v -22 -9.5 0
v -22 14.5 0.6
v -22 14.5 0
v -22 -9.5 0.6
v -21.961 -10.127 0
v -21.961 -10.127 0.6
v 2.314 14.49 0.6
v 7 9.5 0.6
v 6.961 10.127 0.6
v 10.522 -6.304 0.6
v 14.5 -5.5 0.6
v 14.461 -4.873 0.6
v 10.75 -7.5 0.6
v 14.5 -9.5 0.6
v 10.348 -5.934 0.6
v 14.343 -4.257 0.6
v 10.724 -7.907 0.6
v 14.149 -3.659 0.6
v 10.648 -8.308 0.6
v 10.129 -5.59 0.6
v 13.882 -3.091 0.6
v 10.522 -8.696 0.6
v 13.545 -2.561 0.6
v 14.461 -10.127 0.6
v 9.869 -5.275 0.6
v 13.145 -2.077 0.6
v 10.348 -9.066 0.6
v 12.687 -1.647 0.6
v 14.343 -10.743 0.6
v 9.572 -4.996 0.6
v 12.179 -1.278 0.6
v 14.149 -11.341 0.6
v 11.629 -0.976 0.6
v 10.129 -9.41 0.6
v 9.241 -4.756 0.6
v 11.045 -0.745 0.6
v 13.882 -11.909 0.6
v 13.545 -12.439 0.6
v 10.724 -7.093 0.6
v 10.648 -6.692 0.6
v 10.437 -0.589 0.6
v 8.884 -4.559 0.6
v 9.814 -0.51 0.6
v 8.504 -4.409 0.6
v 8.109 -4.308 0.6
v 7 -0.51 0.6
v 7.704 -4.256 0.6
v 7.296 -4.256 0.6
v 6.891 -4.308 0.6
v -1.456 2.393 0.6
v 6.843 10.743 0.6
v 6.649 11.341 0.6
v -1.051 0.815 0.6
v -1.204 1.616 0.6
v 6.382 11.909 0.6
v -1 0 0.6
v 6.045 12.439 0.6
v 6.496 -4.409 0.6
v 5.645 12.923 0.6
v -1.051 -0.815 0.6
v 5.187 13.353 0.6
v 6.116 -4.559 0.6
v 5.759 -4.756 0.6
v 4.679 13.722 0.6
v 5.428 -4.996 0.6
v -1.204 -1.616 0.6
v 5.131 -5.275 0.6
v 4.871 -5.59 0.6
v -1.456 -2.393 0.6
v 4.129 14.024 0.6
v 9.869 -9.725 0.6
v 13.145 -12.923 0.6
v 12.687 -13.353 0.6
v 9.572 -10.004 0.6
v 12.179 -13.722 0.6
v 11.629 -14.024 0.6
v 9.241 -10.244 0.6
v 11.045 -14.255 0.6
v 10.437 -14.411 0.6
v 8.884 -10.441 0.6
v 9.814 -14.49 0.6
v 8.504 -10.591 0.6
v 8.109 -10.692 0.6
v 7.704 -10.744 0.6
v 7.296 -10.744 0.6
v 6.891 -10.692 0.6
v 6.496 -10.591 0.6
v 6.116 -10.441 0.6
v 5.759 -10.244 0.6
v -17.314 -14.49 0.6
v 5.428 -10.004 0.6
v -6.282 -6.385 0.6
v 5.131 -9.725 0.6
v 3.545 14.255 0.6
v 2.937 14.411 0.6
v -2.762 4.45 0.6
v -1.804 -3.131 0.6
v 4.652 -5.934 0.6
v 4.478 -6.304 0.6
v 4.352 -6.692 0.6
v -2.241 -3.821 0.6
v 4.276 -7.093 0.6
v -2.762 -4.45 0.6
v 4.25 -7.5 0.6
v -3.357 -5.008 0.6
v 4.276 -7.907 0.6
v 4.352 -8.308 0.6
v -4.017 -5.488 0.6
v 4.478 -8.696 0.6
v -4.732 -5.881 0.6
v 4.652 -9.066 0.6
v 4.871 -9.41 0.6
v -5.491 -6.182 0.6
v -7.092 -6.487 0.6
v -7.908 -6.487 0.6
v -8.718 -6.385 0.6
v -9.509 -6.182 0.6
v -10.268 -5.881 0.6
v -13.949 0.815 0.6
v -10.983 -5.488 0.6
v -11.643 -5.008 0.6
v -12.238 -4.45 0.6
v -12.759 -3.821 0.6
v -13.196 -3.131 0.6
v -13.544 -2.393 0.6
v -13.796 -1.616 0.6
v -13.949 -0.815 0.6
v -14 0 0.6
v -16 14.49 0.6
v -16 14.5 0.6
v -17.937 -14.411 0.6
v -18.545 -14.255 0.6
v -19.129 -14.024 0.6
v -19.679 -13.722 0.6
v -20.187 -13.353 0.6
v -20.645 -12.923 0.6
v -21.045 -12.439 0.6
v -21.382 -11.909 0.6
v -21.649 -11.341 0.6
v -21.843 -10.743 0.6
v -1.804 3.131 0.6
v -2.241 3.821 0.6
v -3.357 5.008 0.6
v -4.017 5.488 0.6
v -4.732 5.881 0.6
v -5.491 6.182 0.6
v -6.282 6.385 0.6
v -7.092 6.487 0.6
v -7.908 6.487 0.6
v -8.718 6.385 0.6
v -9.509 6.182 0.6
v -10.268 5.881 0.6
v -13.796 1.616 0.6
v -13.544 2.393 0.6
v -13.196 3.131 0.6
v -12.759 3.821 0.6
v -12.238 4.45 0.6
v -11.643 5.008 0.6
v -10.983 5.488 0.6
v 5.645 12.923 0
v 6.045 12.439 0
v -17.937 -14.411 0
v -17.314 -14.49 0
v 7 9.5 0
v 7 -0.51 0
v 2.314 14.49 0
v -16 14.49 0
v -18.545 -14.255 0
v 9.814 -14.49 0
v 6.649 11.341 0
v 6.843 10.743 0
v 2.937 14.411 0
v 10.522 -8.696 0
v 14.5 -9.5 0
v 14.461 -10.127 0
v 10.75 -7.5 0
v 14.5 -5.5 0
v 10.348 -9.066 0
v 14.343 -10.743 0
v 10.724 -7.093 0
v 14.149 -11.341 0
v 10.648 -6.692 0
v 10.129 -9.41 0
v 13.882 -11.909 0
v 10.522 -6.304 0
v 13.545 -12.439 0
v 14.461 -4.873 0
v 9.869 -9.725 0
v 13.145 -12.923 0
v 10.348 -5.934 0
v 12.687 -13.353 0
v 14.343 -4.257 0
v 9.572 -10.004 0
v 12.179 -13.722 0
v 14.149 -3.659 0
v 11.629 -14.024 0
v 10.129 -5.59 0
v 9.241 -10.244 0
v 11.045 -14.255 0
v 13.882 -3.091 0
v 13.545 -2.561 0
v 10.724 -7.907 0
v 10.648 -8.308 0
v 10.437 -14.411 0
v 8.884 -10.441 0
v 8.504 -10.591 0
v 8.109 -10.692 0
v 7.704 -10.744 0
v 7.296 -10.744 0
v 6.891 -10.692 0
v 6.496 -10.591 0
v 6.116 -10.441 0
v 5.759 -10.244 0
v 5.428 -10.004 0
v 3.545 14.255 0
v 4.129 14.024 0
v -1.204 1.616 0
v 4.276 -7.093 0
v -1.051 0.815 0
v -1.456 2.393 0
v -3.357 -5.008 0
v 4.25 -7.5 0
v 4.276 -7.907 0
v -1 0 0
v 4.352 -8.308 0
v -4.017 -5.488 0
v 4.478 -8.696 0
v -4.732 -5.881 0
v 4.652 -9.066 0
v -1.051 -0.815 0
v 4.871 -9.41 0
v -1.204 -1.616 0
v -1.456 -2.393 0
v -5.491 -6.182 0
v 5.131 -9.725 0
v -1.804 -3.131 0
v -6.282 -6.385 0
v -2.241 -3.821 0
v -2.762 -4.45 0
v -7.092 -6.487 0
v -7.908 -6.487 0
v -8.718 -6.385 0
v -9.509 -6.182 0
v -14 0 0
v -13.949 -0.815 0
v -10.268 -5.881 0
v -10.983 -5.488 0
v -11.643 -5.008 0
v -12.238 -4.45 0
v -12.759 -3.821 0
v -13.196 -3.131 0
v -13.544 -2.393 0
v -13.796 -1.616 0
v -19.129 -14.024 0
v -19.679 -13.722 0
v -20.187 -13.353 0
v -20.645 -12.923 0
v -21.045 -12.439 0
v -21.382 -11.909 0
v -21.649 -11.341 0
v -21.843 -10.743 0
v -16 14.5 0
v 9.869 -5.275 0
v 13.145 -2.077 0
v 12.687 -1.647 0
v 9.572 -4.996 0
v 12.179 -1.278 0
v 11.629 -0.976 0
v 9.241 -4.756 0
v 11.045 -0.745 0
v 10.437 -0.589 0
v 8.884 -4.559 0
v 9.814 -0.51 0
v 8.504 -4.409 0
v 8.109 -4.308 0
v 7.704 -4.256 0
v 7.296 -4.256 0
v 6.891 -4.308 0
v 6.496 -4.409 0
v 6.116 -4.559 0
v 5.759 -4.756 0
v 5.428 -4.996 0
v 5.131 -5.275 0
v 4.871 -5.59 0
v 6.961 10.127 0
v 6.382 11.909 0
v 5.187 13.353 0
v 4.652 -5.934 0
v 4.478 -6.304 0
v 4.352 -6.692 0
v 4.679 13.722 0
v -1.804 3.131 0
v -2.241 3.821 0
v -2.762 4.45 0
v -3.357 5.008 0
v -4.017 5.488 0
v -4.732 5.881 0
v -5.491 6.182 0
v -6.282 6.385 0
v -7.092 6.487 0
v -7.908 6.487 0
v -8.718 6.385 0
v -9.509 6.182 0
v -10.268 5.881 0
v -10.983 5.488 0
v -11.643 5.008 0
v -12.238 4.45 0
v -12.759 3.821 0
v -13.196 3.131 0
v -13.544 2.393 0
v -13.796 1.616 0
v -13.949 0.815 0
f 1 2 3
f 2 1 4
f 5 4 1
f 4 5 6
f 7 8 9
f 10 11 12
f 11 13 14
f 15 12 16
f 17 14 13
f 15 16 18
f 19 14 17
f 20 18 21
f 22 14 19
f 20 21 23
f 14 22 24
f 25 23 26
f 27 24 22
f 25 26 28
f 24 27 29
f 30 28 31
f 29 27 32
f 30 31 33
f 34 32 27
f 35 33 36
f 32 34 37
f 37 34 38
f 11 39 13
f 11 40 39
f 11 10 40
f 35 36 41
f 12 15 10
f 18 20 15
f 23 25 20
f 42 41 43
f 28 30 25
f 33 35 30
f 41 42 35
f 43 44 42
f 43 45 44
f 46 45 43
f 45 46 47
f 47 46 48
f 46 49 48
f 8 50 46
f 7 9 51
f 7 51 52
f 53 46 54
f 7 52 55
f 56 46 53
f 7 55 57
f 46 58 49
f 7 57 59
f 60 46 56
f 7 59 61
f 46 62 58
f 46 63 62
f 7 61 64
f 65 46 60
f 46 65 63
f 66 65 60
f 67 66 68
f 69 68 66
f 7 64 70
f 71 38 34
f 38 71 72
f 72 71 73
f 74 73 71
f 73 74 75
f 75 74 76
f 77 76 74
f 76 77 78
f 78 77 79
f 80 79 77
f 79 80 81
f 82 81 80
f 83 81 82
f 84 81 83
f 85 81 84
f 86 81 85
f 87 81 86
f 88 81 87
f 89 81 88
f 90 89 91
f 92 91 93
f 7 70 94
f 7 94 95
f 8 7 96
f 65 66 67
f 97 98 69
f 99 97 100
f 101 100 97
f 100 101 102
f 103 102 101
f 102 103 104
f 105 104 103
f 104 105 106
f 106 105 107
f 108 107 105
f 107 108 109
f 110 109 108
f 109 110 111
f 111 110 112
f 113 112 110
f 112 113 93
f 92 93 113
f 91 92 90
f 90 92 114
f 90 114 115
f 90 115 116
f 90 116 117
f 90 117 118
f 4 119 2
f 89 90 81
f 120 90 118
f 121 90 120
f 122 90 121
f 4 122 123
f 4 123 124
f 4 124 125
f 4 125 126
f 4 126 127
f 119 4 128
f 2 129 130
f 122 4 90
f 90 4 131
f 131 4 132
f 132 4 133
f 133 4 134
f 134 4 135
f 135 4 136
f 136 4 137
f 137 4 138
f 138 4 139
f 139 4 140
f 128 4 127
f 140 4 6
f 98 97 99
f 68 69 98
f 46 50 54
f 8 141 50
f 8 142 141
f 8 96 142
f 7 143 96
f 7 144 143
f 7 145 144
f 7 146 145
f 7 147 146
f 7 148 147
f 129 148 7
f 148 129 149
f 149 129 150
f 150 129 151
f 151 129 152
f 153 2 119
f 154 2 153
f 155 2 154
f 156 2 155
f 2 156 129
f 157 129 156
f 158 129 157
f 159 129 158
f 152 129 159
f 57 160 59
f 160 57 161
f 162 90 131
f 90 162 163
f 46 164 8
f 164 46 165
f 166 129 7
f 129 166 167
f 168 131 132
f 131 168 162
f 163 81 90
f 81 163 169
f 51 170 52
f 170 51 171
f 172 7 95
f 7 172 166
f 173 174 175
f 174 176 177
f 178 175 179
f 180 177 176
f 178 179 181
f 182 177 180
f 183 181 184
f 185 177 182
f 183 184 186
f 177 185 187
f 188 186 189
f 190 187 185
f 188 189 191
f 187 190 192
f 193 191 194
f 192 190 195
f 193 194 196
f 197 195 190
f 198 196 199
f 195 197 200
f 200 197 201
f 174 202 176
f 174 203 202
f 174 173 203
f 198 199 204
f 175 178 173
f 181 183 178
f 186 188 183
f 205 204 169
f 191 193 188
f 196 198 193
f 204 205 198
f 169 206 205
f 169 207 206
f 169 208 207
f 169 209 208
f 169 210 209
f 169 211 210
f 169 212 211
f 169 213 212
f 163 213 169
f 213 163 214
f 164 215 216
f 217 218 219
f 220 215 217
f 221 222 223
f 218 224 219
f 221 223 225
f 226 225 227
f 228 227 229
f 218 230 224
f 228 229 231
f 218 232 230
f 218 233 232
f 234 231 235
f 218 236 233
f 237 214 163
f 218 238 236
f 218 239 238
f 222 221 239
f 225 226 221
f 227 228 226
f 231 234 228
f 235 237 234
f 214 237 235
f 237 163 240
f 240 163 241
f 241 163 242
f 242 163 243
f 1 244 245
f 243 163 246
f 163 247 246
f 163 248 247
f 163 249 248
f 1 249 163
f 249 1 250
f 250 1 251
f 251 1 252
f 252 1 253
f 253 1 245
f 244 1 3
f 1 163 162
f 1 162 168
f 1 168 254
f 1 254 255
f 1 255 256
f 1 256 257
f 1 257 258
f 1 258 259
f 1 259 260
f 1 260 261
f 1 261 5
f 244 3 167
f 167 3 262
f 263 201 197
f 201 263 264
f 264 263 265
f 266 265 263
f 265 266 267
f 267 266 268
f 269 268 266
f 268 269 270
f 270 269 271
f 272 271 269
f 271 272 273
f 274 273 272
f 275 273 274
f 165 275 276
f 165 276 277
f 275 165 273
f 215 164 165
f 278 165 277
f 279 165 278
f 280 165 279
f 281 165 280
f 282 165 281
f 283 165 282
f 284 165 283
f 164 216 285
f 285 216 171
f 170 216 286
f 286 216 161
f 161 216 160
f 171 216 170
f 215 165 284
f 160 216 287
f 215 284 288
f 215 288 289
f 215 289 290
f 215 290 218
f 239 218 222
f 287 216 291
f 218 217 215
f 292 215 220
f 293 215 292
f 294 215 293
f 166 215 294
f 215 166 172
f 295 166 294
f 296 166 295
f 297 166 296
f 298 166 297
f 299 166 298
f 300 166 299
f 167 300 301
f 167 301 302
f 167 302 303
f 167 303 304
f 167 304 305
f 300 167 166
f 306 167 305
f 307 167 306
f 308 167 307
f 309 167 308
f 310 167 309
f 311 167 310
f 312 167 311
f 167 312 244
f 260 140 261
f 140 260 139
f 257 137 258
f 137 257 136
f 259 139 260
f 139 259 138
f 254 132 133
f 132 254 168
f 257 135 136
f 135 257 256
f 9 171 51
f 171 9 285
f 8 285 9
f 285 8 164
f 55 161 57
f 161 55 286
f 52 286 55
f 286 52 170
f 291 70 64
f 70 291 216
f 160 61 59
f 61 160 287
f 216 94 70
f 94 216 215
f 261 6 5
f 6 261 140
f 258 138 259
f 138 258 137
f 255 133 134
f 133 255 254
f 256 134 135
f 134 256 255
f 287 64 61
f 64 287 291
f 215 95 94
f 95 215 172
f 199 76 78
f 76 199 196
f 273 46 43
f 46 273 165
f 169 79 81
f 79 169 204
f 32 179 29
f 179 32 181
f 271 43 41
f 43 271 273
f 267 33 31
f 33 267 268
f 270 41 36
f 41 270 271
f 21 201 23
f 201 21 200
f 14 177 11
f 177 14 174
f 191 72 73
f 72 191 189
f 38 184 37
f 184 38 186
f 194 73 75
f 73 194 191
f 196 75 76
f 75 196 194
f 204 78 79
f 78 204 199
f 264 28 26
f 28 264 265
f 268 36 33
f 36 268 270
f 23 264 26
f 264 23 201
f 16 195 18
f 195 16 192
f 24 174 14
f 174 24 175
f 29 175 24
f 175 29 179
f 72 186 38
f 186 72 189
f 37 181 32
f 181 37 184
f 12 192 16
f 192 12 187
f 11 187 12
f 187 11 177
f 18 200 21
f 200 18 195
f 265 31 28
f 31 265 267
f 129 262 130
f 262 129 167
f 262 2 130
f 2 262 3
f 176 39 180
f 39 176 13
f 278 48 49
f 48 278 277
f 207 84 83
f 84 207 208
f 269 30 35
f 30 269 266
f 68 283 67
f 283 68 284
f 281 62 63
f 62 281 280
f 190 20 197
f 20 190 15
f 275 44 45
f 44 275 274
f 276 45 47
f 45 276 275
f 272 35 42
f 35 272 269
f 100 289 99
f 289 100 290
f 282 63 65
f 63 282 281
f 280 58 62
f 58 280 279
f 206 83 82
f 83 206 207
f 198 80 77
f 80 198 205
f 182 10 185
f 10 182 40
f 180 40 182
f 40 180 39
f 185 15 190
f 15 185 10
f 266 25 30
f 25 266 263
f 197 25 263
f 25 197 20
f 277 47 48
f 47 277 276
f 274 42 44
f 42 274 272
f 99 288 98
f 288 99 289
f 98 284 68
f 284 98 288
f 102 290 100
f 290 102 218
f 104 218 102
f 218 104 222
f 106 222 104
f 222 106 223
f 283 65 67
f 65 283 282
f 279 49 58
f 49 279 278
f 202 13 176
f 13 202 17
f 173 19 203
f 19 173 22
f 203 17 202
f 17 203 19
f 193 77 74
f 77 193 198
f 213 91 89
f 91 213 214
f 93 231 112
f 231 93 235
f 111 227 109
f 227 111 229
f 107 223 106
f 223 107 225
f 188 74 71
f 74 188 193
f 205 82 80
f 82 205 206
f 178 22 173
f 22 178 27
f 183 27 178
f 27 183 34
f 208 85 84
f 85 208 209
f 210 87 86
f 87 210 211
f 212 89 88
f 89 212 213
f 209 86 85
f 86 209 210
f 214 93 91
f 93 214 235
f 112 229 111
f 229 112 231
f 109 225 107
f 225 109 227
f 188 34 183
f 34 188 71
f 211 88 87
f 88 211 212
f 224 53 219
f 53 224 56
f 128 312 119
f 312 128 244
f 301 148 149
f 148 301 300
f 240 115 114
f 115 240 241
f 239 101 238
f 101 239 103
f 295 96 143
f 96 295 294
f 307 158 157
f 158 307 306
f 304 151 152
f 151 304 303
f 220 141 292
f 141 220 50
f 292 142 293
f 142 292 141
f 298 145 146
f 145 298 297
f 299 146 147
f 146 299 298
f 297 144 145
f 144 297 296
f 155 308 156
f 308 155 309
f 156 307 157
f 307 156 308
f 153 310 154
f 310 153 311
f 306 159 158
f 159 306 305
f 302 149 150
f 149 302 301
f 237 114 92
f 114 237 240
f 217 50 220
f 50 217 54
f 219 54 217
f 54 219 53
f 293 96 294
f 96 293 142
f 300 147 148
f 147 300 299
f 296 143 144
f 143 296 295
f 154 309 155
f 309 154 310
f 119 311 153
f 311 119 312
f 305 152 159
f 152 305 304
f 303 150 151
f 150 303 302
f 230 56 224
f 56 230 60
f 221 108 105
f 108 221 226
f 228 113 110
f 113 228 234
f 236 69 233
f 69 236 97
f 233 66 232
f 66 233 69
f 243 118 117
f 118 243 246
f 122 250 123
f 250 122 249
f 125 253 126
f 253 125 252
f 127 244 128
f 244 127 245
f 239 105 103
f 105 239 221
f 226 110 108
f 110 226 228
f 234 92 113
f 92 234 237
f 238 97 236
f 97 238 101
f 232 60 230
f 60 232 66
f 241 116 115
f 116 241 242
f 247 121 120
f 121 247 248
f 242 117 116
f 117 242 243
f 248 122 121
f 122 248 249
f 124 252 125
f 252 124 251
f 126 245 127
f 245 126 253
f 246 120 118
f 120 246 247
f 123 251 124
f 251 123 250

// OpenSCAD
$fn = 50;


difference() {
	union() {
		translate(v = [-7.5000000000, 0, 0]) {
			rotate(a = [0, 0, 0]) {
				hull() {
					translate(v = [-9.5000000000, 9.5000000000, 0]) {
						rotate(a = [0, 0, 0]) {
							translate(v = [0, 0, 0]) {
								rotate(a = [0, 0, 0]) {
									cylinder(h = 0.6000000000, r = 5);
								}
							}
						}
					}
					translate(v = [9.5000000000, 9.5000000000, 0]) {
						rotate(a = [0, 0, 0]) {
							translate(v = [0, 0, 0]) {
								rotate(a = [0, 0, 0]) {
									cylinder(h = 0.6000000000, r = 5);
								}
							}
						}
					}
					translate(v = [-9.5000000000, -9.5000000000, 0]) {
						rotate(a = [0, 0, 0]) {
							translate(v = [0, 0, 0]) {
								rotate(a = [0, 0, 0]) {
									cylinder(h = 0.6000000000, r = 5);
								}
							}
						}
					}
					translate(v = [9.5000000000, -9.5000000000, 0]) {
						rotate(a = [0, 0, 0]) {
							translate(v = [0, 0, 0]) {
								rotate(a = [0, 0, 0]) {
									cylinder(h = 0.6000000000, r = 5);
								}
							}
						}
					}
				}
			}
		}
		translate(v = [0.0000000000, -7.5000000000, 0]) {
			rotate(a = [0, 0, 0]) {
				hull() {
					translate(v = [-9.5000000000, 2.0000000000, 0]) {
						rotate(a = [0, 0, 0]) {
							translate(v = [0, 0, 0]) {
								rotate(a = [0, 0, 0]) {
									cylinder(h = 0.6000000000, r = 5);
								}
							}
						}
					}
					translate(v = [9.5000000000, 2.0000000000, 0]) {
						rotate(a = [0, 0, 0]) {
							translate(v = [0, 0, 0]) {
								rotate(a = [0, 0, 0]) {
									cylinder(h = 0.6000000000, r = 5);
								}
							}
						}
					}
					translate(v = [-9.5000000000, -2.0000000000, 0]) {
						rotate(a = [0, 0, 0]) {
							translate(v = [0, 0, 0]) {
								rotate(a = [0, 0, 0]) {
									cylinder(h = 0.6000000000, r = 5);
								}
							}
						}
					}
					translate(v = [9.5000000000, -2.0000000000, 0]) {
						rotate(a = [0, 0, 0]) {
							translate(v = [0, 0, 0]) {
								rotate(a = [0, 0, 0]) {
									cylinder(h = 0.6000000000, r = 5);
								}
							}
						}
					}
				}
			}
		}
		translate(v = [-22.0000000000, 8.5000000000, 0]) {
			rotate(a = [0, 0, 0]) {
				cube(size = [6, 6, 0.6000000000]);
			}
		}
	}
	union() {
		translate(v = [7.5000000000, -7.5000000000, -125.0000000000]) {
			rotate(a = [0, 0, 0]) {
				cylinder(h = 250, r = 3.2500000000);
			}
		}
		translate(v = [-7.5000000000, 0, 0.0000000000]) {
			rotate(a = [0, 0, 0]) {
				cylinder(h = 0.6000000000, r = 6.5000000000);
			}
		}
	}
}
